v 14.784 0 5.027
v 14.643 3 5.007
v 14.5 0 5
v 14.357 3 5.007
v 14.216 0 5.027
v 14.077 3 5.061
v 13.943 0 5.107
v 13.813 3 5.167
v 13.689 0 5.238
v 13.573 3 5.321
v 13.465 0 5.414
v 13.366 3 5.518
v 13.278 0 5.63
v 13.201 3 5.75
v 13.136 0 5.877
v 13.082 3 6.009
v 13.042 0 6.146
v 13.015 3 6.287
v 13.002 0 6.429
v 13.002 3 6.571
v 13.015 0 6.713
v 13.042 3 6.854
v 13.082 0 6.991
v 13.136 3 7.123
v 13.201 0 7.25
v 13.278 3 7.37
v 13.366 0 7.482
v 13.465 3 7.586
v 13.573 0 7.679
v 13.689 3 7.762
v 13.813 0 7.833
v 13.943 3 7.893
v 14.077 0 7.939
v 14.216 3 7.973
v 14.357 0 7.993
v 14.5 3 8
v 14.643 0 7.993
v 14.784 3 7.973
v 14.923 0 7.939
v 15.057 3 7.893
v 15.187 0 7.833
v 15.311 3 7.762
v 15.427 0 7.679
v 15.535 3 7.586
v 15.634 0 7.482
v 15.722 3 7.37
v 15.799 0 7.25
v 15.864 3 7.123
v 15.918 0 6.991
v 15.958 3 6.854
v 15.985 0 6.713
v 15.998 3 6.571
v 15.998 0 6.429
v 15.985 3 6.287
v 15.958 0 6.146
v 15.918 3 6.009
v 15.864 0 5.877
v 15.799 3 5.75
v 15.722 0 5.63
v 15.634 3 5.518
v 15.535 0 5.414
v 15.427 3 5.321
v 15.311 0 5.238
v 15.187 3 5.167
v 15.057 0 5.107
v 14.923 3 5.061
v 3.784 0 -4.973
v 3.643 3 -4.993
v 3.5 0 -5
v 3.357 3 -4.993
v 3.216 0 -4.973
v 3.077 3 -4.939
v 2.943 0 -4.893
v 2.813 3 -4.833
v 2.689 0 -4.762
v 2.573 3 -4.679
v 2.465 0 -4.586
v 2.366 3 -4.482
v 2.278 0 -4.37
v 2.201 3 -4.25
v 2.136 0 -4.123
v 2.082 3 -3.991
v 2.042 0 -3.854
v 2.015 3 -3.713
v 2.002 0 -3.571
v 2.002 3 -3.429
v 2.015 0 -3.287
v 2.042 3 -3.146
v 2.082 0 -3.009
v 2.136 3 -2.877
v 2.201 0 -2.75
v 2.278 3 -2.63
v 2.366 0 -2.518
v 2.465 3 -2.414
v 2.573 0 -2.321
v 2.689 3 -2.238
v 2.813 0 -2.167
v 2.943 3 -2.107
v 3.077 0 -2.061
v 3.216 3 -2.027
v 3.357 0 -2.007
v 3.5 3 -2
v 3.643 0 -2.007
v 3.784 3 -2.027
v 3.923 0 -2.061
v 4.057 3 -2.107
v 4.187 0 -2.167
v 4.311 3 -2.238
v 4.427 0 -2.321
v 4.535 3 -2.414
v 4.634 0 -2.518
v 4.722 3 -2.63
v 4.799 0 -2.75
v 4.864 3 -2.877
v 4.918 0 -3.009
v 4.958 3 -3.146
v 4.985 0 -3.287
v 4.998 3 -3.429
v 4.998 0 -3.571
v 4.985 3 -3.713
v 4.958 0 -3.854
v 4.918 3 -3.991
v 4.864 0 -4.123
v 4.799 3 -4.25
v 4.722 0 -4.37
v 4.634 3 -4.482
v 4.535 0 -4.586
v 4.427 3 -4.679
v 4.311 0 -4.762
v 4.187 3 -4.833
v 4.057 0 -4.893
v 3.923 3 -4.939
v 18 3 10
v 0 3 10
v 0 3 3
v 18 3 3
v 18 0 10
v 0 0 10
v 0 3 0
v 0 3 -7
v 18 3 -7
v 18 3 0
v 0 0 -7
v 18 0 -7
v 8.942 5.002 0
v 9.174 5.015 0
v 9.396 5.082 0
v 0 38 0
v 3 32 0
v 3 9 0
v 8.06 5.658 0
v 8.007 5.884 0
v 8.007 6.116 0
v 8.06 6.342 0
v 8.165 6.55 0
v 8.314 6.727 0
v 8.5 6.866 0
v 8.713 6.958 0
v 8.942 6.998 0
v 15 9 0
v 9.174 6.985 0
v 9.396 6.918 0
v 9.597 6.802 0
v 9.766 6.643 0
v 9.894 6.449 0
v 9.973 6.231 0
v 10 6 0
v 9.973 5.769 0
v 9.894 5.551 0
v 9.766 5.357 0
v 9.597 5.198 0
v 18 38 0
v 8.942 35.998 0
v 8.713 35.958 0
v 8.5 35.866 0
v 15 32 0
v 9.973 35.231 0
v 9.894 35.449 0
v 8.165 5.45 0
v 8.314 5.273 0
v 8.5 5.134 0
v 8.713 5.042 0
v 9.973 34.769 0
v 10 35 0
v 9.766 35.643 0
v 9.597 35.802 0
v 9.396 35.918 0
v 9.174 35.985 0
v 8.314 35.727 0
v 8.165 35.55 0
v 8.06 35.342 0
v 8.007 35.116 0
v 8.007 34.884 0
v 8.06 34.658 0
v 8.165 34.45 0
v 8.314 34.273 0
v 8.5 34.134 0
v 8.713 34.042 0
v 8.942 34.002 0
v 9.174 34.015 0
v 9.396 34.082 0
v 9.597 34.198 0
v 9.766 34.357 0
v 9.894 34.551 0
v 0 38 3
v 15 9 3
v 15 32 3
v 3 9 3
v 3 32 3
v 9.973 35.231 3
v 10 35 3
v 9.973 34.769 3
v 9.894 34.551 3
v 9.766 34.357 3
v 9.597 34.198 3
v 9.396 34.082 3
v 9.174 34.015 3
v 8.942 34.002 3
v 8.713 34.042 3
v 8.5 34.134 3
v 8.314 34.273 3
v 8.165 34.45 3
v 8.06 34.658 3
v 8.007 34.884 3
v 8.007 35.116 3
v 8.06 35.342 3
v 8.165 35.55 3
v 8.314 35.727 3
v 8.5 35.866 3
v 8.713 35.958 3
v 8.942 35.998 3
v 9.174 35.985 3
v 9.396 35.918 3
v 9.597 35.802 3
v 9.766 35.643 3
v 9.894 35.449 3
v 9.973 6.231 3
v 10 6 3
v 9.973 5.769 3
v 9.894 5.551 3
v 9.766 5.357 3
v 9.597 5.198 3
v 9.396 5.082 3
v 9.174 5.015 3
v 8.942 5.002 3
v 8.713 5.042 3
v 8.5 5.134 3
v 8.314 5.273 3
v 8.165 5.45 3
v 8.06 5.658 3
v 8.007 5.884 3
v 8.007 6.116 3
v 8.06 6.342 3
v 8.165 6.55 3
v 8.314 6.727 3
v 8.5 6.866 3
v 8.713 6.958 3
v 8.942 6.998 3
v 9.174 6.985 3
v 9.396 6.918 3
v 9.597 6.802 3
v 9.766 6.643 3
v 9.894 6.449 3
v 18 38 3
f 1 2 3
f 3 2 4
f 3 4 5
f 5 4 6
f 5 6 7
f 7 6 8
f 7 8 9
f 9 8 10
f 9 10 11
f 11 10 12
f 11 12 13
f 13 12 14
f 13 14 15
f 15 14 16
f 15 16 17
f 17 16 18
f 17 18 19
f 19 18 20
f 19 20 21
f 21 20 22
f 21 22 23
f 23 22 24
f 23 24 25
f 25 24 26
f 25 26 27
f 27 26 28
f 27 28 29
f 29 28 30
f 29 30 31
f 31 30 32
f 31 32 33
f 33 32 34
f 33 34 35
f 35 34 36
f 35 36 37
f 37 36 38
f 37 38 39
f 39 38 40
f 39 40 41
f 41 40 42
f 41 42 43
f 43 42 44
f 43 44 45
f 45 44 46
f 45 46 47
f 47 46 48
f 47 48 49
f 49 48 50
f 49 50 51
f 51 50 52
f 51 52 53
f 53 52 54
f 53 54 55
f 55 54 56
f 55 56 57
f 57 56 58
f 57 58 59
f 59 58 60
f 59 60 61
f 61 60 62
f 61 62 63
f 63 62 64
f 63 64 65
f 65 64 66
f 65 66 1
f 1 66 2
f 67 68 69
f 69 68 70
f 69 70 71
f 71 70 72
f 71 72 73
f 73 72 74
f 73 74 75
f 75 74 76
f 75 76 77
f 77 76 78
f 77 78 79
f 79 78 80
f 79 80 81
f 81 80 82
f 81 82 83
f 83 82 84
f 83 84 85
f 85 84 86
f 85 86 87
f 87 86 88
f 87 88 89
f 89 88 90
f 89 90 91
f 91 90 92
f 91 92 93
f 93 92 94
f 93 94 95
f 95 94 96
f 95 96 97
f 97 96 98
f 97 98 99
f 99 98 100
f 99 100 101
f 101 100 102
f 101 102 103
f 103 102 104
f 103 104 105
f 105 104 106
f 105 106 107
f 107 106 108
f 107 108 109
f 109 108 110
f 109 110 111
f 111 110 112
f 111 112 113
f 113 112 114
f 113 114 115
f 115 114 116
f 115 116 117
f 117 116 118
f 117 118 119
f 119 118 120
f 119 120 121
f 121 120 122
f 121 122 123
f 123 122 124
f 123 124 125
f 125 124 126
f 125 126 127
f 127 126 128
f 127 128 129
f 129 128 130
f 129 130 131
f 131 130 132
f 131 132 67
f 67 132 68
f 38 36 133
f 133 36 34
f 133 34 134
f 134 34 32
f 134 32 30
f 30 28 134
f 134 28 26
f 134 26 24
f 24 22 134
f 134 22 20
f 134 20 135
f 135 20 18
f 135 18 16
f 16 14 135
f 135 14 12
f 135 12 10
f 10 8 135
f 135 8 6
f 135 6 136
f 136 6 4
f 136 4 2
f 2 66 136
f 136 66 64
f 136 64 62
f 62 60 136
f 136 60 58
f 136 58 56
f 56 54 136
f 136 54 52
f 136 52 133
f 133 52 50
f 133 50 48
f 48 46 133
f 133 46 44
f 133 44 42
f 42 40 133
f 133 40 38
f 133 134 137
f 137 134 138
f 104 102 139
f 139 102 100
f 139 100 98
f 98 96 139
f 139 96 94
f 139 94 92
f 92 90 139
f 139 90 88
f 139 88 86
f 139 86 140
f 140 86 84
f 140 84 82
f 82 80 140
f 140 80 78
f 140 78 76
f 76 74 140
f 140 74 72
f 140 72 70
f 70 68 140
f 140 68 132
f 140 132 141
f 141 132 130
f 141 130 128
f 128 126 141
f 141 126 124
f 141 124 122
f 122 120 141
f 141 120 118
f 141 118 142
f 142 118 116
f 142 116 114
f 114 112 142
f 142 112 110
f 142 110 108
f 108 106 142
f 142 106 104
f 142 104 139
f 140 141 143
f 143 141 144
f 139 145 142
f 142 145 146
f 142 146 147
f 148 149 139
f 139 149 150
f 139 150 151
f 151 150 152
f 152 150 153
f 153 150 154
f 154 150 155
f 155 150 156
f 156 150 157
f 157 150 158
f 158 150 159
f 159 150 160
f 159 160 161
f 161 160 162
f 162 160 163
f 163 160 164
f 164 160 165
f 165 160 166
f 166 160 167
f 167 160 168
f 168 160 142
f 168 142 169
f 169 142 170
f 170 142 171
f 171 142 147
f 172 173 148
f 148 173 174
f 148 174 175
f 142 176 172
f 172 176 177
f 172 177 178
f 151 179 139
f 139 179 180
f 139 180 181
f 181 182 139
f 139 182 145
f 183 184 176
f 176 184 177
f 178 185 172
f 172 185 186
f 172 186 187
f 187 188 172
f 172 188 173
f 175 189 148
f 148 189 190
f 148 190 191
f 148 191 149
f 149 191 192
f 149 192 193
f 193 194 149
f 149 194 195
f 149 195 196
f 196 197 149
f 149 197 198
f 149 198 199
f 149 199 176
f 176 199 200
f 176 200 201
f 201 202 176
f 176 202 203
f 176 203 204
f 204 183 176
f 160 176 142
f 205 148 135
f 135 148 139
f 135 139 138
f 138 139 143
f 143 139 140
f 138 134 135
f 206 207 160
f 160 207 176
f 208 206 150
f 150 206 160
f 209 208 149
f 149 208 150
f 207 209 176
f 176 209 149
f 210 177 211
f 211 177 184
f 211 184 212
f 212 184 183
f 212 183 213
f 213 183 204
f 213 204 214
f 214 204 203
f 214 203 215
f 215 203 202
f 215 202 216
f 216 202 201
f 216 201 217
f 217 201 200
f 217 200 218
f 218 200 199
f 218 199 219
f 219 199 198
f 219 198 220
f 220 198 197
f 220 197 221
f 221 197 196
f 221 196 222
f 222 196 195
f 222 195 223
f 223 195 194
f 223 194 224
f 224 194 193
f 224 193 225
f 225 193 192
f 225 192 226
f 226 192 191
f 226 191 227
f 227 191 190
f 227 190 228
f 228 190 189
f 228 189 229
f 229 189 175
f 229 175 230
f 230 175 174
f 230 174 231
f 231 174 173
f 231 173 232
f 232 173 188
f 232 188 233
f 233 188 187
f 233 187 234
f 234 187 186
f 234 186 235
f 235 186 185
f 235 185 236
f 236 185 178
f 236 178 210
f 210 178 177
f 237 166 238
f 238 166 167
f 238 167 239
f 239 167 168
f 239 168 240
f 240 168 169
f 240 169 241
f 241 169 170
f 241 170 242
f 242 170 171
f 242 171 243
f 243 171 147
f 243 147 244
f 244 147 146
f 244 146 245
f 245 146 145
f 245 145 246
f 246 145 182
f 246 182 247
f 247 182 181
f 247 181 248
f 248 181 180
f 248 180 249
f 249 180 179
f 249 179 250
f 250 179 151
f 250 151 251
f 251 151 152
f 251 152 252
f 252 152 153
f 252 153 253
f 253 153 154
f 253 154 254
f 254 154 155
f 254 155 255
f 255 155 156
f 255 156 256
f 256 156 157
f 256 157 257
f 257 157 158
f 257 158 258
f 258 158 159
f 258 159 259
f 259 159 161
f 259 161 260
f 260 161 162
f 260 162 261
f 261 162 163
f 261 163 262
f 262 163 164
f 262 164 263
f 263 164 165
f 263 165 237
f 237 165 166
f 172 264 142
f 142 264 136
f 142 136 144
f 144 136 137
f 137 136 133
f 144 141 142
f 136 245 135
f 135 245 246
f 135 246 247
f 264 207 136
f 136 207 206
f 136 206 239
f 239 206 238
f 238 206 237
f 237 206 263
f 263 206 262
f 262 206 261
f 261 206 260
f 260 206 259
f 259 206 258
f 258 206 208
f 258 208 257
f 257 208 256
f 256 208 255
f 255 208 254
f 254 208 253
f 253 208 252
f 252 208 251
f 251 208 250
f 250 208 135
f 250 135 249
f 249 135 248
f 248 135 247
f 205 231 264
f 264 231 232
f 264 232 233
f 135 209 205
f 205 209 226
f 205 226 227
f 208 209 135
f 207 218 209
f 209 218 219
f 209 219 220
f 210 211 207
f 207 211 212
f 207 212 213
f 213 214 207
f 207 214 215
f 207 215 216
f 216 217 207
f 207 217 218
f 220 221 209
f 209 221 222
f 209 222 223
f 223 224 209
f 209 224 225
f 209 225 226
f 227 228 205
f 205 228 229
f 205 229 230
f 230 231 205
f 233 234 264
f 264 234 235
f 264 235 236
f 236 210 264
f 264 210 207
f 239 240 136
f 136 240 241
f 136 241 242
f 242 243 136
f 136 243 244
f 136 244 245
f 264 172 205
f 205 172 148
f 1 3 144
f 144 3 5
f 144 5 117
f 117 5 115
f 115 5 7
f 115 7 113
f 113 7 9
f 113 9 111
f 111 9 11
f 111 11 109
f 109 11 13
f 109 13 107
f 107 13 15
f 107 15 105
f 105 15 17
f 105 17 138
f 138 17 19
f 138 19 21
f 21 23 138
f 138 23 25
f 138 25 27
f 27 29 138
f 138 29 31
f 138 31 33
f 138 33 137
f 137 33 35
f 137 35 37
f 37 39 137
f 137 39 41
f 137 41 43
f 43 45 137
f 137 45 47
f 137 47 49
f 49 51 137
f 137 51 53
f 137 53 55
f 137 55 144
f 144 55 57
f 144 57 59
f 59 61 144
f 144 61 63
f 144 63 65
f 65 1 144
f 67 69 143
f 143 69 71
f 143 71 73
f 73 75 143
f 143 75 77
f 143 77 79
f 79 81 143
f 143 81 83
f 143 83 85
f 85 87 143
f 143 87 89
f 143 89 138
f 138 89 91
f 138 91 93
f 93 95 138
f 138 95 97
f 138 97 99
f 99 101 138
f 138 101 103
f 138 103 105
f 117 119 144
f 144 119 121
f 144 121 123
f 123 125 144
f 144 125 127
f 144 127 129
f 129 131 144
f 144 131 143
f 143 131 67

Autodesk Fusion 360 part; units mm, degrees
sketch "Sketch base" plane through (0, 0, 0) normal (0, 1, 0) x (1, 0, 0)
  line L0 (0, 0) -> (18, 0)
  line L1 (18, 0) -> (18, -3)
  line L2 (18, -3) -> (0, -3)
  line L3 (0, -3) -> (0, 0)
  dimension "d1" = 18
  dimension "d2" = 3
extrude "Extrude1" add sketch "Sketch base" along normal blind 38
sketch "Sketch face" plane through (0, 0, 0) normal (0, 0, -1) x (-1, 0, 0)
  line L0 (-18, 0) -> (0, 0)
  line L1 (0, 0) -> (0, 38)
  line L2 (0, 38) -> (-18, 38)
  line L3 (-18, 38) -> (-18, 0)
  circle A0 centre (-9, 35) radius 1
  circle A1 centre (-9, 6) radius 1
  line L4 (-15, 32) -> (-3, 32)
  line L5 (-3, 32) -> (-3, 9)
  line L6 (-3, 9) -> (-15, 9)
  line L7 (-15, 9) -> (-15, 32)
  line L8 (0, 0) -> (-18, 0)
  line L9 (-18, 0) -> (-18, 3)
  line L10 (-18, 3) -> (0, 3)
  line L11 (0, 3) -> (0, 0)
  dimension "d5" = 2
  dimension "d6" = 2
  dimension "d7" = 12
  dimension "d8" = 3
  dimension "d9" = 3
  dimension "d10" = 3
  dimension "d13" = 3
  dimension "d14" = 9
  dimension "d15" = 9
  dimension "d19" = 3
  dimension "d34" = 23
extrude "Extrude2" cut sketch "Sketch face" against normal blind 4 contours A0 | A1 | L4 L5 L6 L7
extrude "Extrude3" add sketch "Sketch face" along normal blind 7 and the other way blind 10 contours L0 L1 L3 L8 L9 L10 L11
hole "Hole1" at (3.5, 3, -3.5) direction (0, -1, 0) diameter 3 depth 5 tip angle 180
hole "Hole2" at (14.5, 3, 6.5) direction (0, -1, 0) diameter 3 depth 5 tip angle 180
